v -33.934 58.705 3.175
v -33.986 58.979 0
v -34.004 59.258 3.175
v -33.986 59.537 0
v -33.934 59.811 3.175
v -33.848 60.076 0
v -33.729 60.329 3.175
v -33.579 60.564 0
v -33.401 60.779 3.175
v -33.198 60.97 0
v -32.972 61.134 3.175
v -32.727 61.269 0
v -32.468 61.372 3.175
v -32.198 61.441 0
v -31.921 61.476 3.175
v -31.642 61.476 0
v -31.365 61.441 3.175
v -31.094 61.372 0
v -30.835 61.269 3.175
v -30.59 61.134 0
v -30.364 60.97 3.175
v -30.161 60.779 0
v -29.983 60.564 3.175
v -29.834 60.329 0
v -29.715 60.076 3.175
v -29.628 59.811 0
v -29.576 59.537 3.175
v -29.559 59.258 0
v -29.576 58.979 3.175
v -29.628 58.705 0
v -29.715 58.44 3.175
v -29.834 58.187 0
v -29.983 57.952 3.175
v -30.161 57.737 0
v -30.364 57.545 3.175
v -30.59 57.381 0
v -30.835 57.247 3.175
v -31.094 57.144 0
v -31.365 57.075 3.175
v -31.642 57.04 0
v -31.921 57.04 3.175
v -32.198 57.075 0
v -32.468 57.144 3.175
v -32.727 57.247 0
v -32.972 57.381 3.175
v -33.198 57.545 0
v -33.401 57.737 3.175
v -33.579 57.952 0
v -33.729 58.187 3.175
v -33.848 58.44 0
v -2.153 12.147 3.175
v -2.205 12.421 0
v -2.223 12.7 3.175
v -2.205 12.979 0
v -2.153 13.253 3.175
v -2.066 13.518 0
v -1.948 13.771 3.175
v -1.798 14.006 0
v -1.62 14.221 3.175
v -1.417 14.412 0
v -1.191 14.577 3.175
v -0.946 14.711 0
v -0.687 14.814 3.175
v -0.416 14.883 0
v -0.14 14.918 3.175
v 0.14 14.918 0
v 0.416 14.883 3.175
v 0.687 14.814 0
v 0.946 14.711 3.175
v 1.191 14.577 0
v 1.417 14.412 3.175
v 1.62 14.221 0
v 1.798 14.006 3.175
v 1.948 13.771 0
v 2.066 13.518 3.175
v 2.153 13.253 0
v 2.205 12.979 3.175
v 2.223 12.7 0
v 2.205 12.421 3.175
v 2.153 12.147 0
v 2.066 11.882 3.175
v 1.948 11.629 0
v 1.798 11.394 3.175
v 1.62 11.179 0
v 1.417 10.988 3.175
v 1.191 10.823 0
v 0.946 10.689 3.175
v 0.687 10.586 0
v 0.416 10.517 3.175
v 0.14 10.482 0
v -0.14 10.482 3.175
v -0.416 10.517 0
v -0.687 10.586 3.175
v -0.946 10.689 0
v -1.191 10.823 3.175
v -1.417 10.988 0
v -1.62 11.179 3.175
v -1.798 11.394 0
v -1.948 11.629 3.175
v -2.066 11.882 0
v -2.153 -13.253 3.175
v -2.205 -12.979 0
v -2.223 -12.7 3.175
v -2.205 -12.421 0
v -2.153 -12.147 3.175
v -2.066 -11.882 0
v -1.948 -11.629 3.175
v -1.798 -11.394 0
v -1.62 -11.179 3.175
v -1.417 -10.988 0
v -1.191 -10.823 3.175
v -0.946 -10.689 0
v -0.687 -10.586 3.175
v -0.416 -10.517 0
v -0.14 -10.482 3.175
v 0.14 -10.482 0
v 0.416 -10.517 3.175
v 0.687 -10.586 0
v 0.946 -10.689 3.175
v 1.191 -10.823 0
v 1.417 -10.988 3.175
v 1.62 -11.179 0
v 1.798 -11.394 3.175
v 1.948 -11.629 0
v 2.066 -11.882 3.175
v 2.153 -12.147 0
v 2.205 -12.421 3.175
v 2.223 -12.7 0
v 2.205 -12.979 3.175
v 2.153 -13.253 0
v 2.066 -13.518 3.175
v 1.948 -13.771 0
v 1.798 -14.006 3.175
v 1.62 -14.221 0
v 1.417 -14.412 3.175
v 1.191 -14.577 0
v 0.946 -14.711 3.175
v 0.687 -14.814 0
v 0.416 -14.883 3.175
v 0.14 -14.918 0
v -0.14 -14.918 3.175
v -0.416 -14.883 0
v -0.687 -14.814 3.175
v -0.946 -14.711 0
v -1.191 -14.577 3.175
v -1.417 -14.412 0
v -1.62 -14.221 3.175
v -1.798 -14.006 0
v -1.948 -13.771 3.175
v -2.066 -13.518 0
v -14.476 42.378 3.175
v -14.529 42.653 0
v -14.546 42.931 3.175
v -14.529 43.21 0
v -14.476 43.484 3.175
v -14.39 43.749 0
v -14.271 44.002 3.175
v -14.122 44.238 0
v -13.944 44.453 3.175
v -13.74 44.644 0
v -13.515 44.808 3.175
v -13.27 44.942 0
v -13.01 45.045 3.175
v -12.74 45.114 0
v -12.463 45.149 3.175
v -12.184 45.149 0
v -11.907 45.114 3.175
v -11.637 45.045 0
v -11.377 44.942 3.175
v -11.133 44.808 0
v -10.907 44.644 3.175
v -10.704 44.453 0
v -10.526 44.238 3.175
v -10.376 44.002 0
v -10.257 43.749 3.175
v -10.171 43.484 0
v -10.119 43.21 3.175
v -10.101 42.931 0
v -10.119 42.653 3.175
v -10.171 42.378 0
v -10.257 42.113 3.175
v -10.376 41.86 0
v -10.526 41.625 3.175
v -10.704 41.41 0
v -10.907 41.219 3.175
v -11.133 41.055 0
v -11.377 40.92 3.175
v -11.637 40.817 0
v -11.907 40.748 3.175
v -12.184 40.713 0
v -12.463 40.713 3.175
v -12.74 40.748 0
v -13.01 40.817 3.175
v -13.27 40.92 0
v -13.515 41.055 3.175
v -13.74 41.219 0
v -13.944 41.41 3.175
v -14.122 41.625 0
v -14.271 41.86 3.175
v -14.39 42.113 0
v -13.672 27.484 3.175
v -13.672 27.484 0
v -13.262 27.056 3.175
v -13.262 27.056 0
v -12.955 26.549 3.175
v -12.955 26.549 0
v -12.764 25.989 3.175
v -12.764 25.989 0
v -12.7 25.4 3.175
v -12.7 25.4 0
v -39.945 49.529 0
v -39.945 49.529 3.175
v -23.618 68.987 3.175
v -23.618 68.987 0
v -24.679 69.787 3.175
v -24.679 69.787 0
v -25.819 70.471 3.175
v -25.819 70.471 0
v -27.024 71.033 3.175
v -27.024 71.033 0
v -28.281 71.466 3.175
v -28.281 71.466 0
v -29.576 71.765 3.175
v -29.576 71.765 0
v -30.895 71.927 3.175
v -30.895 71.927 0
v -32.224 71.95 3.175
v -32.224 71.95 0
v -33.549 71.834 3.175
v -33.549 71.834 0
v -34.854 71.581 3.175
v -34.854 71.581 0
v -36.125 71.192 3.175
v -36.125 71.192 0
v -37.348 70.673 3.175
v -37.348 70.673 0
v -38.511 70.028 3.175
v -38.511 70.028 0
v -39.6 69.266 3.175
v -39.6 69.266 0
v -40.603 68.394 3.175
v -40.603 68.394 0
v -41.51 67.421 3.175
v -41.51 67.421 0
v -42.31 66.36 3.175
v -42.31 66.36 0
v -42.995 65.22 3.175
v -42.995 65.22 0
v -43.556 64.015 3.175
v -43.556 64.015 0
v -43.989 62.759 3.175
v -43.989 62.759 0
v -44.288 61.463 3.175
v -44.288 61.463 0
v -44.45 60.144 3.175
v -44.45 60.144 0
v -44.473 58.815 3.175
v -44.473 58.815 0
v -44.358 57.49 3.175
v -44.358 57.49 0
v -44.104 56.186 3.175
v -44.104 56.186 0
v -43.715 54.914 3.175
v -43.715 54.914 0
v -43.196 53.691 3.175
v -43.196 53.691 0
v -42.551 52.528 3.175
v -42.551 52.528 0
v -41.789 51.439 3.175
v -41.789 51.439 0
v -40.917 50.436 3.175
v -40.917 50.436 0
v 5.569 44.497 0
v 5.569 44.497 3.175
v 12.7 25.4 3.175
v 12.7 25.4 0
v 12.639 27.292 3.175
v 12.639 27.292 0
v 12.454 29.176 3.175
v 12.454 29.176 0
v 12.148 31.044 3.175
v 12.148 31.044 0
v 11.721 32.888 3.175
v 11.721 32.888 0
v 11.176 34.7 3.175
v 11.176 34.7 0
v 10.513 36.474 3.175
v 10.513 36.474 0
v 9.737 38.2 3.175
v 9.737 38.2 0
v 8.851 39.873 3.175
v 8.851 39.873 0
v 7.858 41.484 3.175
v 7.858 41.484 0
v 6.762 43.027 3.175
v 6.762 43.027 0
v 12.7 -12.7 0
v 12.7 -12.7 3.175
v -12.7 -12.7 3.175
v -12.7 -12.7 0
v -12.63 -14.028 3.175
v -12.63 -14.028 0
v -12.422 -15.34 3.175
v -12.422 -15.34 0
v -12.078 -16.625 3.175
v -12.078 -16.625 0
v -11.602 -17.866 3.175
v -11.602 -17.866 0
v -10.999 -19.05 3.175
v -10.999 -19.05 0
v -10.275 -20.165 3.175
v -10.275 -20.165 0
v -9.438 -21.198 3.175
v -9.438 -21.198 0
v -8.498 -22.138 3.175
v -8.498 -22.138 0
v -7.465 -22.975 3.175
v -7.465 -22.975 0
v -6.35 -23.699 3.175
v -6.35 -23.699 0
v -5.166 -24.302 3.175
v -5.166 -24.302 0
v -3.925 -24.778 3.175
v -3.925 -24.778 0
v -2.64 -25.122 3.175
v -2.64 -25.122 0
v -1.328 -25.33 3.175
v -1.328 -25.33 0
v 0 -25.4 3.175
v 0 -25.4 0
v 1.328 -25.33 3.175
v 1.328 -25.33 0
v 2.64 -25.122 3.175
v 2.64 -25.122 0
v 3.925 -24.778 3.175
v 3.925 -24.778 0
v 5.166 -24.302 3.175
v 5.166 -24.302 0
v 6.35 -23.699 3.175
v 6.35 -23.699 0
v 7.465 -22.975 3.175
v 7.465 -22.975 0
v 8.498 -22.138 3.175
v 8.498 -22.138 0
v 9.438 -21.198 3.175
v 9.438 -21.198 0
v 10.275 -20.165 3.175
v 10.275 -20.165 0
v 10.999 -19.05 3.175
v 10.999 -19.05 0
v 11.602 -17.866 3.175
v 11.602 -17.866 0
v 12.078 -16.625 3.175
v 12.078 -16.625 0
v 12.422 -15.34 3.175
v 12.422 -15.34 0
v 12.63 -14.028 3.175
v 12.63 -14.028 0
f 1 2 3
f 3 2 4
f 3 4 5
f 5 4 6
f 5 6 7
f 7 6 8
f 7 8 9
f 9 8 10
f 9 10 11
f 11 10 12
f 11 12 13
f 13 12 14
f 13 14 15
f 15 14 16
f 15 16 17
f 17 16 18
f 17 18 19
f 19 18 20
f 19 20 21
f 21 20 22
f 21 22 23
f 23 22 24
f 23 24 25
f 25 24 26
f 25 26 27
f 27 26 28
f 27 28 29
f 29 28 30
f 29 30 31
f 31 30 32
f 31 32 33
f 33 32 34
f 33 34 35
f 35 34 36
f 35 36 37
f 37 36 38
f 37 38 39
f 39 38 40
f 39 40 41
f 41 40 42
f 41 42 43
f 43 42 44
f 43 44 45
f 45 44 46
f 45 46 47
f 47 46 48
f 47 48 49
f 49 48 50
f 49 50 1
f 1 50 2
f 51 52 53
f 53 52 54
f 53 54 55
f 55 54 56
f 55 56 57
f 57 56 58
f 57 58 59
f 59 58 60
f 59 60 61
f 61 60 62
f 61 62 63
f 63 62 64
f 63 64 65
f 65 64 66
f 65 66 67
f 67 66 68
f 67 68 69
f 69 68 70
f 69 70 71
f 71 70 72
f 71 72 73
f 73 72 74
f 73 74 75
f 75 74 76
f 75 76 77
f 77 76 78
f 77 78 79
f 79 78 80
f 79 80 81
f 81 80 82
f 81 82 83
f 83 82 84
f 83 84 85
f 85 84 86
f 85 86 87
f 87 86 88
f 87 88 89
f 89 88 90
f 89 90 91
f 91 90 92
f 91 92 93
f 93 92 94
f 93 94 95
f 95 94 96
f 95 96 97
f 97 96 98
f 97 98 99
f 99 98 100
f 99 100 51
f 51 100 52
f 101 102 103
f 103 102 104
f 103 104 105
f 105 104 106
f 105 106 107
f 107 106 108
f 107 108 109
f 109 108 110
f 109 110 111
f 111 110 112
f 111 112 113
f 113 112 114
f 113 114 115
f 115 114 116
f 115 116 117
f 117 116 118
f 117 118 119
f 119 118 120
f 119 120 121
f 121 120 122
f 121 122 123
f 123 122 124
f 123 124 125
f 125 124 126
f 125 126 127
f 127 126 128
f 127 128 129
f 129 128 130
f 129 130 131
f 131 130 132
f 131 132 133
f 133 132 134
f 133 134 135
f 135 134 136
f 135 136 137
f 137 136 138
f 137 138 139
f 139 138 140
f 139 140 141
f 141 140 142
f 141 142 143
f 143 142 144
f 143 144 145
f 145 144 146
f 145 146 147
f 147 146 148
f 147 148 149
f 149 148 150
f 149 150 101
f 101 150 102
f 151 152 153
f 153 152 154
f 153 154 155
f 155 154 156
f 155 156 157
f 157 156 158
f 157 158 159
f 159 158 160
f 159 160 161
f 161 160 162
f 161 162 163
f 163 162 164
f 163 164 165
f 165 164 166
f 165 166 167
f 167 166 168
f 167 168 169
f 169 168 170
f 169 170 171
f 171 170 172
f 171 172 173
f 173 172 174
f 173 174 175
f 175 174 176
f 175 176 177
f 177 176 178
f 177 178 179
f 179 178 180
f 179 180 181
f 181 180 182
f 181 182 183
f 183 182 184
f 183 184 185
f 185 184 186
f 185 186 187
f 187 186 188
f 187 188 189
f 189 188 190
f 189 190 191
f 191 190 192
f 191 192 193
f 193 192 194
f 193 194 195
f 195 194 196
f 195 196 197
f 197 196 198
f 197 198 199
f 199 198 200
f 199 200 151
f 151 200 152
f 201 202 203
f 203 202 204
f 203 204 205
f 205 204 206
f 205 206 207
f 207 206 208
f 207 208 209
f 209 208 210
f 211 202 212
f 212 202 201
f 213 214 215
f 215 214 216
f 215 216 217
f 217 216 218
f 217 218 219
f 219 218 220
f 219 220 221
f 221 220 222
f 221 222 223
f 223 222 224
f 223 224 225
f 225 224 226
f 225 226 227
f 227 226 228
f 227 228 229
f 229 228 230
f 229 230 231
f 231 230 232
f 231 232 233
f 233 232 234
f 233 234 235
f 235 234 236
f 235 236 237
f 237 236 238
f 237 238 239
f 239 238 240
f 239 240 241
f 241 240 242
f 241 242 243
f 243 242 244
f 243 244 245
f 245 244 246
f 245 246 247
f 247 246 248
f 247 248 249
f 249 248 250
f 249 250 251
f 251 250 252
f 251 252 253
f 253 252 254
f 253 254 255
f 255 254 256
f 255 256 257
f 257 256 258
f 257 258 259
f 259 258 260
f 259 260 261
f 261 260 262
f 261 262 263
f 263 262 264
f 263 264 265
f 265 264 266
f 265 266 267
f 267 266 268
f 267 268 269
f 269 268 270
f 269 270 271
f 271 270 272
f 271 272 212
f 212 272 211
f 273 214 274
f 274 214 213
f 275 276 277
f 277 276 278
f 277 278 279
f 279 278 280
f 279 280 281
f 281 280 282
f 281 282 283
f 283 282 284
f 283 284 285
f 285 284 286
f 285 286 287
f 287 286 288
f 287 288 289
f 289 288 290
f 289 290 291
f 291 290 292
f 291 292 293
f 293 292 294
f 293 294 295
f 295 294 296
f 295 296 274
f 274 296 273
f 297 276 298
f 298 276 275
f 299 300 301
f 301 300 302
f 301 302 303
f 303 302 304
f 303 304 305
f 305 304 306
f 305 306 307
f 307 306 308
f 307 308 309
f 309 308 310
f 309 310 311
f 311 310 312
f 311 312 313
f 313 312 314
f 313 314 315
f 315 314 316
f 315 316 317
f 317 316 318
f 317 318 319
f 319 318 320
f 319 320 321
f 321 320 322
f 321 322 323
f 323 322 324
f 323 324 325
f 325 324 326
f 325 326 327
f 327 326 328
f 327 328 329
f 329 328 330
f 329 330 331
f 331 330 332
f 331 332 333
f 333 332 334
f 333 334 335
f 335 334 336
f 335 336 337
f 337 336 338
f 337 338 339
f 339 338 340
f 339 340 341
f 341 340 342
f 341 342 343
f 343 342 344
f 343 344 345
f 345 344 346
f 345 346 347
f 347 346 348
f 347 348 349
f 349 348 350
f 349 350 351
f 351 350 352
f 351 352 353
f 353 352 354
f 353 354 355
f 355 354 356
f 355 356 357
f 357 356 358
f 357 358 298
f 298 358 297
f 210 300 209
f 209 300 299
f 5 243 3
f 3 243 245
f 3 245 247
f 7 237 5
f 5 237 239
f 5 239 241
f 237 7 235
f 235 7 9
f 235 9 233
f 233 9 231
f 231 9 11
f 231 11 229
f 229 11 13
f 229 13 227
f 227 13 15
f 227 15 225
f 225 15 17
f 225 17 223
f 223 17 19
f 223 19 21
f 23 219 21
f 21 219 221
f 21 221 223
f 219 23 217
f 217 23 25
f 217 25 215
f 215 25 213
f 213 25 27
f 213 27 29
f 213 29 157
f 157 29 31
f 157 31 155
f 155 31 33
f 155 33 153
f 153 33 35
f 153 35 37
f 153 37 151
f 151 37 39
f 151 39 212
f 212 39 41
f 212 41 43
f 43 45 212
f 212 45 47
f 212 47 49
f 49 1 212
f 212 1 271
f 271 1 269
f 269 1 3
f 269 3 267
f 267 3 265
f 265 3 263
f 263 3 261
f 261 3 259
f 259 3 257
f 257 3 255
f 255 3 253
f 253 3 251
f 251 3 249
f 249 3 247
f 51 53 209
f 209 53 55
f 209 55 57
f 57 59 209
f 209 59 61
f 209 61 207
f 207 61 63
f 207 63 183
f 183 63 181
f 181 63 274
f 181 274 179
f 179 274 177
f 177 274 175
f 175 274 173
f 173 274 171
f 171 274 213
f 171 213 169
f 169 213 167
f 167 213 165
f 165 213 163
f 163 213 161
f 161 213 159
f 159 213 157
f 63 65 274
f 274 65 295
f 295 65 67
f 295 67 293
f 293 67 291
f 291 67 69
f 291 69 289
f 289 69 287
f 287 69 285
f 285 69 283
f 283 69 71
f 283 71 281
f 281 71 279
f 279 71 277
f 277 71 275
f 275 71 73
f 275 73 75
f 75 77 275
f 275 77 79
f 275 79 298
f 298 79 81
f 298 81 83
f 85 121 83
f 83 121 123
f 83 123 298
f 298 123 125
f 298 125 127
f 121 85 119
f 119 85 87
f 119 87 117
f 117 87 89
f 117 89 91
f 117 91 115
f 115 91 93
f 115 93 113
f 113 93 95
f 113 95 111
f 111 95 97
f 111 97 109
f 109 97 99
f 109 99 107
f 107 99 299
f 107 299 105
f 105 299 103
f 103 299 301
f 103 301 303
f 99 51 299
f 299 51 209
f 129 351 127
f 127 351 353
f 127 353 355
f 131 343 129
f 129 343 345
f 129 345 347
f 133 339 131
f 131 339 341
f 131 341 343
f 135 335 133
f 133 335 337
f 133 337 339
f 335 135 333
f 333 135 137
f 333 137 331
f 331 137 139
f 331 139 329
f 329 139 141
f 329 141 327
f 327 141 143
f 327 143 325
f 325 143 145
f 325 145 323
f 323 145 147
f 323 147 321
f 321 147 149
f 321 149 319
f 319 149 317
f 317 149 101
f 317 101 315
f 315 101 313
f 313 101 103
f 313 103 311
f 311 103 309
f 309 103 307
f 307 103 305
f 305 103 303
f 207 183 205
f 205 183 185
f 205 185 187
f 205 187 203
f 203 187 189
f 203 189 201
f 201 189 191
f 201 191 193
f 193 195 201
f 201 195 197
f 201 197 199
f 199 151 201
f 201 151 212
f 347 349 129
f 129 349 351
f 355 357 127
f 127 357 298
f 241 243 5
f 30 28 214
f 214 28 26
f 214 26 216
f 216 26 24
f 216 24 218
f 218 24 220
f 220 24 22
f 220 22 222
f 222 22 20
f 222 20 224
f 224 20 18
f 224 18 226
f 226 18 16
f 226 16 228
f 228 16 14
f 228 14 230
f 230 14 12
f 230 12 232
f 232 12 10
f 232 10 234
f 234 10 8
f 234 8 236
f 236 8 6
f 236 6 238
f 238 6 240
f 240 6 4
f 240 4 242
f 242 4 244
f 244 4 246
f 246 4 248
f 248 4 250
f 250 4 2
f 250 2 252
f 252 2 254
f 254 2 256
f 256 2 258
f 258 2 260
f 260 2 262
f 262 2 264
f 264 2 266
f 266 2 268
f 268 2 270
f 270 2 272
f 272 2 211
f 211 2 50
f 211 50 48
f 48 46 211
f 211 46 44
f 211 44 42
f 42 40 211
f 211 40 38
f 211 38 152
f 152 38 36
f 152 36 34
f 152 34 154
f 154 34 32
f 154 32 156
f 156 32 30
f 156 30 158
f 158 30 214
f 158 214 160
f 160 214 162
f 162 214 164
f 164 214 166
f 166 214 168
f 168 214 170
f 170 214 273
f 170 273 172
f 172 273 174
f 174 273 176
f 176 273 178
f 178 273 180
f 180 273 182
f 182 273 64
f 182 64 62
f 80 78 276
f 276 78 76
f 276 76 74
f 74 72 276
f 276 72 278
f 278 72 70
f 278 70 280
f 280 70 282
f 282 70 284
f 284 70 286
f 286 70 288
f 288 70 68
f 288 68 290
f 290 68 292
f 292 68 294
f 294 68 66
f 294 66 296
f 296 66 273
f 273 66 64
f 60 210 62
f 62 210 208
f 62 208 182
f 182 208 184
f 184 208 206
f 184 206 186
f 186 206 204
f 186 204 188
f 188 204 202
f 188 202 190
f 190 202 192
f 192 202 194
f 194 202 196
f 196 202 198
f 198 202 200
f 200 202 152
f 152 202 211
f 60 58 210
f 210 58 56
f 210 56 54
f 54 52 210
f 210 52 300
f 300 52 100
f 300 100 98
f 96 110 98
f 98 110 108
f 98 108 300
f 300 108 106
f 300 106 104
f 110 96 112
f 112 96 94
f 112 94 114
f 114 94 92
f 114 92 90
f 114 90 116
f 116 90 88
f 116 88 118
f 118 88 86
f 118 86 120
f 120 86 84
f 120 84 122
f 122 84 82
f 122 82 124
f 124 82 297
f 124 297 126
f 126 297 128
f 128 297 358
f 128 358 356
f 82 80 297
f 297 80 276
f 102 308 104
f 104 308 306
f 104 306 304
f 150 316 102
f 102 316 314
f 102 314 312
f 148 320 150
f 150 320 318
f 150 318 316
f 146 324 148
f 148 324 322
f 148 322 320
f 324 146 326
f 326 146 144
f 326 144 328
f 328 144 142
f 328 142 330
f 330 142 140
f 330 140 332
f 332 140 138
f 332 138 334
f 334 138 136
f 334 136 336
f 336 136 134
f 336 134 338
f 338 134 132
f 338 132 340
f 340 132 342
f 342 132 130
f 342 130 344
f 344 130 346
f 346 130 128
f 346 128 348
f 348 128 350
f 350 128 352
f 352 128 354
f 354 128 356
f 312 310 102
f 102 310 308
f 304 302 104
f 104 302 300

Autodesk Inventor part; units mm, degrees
ref_plane "YZ Plane" through (0, 0, 0) normal (1, 0, 0) x (0, 1, 0)
ref_plane "XZ Plane" through (0, 0, 0) normal (0, 1, 0) x (-1, 0, 0)
ref_plane "XY Plane" through (0, 0, 0) normal (0, 0, 1) x (1, 0, 0)
sketch "Sketch1" plane through (0, 0, 0) normal (0, 0, 1) x (1, 0, 0)
  line L0 (-12.7, 25.4) -> (12.7, 25.4)
  line L1 (12.7, 25.4) -> (12.7, -25.4)
  line L2 (12.7, -25.4) -> (-12.7, -25.4)
  line L3 (-12.7, -25.4) -> (-12.7, 25.4)
  line L4 (-12.7, 25.4) -> (12.7, -25.4) construction
  line L5 (12.7, 25.4) -> (-12.7, -25.4) construction
  line L6 (-33.3465, 77.1501) -> (5.5685, 44.4965)
  line L7 (5.5685, 44.4965) -> (-10.7583, 25.039)
  line L8 (-10.7583, 25.039) -> (-49.6733, 57.6926)
  line L9 (-49.6733, 57.6926) -> (-33.3465, 77.1501)
  line L10 (-33.3465, 77.1501) -> (-10.7583, 25.039) construction
  line L11 (5.5685, 44.4965) -> (-49.6733, 57.6926) construction
  line L12 (-31.7812, 59.258) -> (-12.3236, 42.9312) construction
  line L13 (0, -12.7) -> (0, 12.7) construction
  line L14 (-12.7, -25.4) -> (12.7, -25.4)
  line L15 (12.7, -25.4) -> (12.7, -50.8)
  line L16 (12.7, -50.8) -> (-12.7, -50.8)
  line L17 (-12.7, -50.8) -> (-12.7, -25.4)
  circle A0 centre (0, -38.1) radius 12.7
  circle A1 centre (-31.7812, 59.258) radius 12.7
  line L18 (-10.7583, 25.039) -> (-185.876, 171.9802)
  arc A2 (-12.7, 25.4) -> (-13.6716, 27.4835) centre (-15.4199, 25.4) ccw
  arc A3 (12.7, 25.4) -> (5.5685, 44.4965) centre (-16.4339, 25.4) ccw
  circle A4 centre (0, -12.7) radius 12.7
  point P0 (0, 0)
  point P1 (0, 0)
  point P2 (0, 0)
  point P3 (-22.0524, 51.0946)
  point P4 (-22.0524, 51.0946)
  point P5 (-39.9446, 49.5292)
  point P6 (-12.7, -38.1)
  point P7 (12.7, -38.1)
  point P8 (-23.6178, 68.9867)
  point P9 (-10.4554, 25.4)
  point P10 (-11.1885, 25.4)
  point P11 (-41.5099, 67.4214)
  point P12 (-39.9446, 49.5292)
  point P13 (-13.6716, 27.4835)
  point P14 (-11.1885, 25.4)
  point P15 (12.7, -12.7)
  point P16 (-12.7, -12.7)
  dimension "d0" = 25.4
  dimension "d1" = 50.8
  dimension "d2" = 25.4
  dimension "d3" = 12.7
  dimension "d14" = 25.4
extrude "Extrusion1" add sketch "Sketch1" along normal blind 3.175 contours A2 L8 L0 | L0 L8 L7 L1 A4 L3 | L8 A1 L6 L7 L0 | L0 L7 L8 | A4 | L7 A3 L0 | A1
hole "Hole1" at (0, -12.7, 0) at (0, 12.7, 0) at (-12.3236, 42.9312, 0) at (-31.7812, 59.258, 0) at (0, -38.1, 0) direction (0, 0, 1) diameter 4.445 end through all
equation "\"d3\" = 0.5 * d2"
equation "\"d14\" = d2"
properties part number "Hood Lower Bracket" material "PET Plastic"
